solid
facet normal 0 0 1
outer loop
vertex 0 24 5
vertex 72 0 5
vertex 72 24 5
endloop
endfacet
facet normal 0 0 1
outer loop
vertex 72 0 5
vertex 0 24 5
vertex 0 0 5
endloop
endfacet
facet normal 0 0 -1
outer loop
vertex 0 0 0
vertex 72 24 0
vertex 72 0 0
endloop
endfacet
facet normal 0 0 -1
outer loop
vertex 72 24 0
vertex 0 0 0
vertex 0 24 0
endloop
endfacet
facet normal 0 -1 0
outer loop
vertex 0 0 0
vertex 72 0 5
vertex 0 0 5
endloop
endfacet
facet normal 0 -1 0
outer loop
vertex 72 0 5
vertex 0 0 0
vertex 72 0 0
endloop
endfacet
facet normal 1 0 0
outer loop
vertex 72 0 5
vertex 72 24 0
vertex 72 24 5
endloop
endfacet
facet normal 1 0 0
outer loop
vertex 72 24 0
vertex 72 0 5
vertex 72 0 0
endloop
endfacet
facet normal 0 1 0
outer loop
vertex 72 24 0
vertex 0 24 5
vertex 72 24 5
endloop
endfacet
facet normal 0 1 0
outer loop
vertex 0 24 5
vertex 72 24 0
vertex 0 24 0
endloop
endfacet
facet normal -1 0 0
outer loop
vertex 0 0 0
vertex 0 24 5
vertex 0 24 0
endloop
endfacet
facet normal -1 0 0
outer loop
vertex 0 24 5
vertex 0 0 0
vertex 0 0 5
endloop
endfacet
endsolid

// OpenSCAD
module rectangular_box(length, width, height) {
  cube([length, width, height]);
}

rectangular_box(72, 24, 5);
